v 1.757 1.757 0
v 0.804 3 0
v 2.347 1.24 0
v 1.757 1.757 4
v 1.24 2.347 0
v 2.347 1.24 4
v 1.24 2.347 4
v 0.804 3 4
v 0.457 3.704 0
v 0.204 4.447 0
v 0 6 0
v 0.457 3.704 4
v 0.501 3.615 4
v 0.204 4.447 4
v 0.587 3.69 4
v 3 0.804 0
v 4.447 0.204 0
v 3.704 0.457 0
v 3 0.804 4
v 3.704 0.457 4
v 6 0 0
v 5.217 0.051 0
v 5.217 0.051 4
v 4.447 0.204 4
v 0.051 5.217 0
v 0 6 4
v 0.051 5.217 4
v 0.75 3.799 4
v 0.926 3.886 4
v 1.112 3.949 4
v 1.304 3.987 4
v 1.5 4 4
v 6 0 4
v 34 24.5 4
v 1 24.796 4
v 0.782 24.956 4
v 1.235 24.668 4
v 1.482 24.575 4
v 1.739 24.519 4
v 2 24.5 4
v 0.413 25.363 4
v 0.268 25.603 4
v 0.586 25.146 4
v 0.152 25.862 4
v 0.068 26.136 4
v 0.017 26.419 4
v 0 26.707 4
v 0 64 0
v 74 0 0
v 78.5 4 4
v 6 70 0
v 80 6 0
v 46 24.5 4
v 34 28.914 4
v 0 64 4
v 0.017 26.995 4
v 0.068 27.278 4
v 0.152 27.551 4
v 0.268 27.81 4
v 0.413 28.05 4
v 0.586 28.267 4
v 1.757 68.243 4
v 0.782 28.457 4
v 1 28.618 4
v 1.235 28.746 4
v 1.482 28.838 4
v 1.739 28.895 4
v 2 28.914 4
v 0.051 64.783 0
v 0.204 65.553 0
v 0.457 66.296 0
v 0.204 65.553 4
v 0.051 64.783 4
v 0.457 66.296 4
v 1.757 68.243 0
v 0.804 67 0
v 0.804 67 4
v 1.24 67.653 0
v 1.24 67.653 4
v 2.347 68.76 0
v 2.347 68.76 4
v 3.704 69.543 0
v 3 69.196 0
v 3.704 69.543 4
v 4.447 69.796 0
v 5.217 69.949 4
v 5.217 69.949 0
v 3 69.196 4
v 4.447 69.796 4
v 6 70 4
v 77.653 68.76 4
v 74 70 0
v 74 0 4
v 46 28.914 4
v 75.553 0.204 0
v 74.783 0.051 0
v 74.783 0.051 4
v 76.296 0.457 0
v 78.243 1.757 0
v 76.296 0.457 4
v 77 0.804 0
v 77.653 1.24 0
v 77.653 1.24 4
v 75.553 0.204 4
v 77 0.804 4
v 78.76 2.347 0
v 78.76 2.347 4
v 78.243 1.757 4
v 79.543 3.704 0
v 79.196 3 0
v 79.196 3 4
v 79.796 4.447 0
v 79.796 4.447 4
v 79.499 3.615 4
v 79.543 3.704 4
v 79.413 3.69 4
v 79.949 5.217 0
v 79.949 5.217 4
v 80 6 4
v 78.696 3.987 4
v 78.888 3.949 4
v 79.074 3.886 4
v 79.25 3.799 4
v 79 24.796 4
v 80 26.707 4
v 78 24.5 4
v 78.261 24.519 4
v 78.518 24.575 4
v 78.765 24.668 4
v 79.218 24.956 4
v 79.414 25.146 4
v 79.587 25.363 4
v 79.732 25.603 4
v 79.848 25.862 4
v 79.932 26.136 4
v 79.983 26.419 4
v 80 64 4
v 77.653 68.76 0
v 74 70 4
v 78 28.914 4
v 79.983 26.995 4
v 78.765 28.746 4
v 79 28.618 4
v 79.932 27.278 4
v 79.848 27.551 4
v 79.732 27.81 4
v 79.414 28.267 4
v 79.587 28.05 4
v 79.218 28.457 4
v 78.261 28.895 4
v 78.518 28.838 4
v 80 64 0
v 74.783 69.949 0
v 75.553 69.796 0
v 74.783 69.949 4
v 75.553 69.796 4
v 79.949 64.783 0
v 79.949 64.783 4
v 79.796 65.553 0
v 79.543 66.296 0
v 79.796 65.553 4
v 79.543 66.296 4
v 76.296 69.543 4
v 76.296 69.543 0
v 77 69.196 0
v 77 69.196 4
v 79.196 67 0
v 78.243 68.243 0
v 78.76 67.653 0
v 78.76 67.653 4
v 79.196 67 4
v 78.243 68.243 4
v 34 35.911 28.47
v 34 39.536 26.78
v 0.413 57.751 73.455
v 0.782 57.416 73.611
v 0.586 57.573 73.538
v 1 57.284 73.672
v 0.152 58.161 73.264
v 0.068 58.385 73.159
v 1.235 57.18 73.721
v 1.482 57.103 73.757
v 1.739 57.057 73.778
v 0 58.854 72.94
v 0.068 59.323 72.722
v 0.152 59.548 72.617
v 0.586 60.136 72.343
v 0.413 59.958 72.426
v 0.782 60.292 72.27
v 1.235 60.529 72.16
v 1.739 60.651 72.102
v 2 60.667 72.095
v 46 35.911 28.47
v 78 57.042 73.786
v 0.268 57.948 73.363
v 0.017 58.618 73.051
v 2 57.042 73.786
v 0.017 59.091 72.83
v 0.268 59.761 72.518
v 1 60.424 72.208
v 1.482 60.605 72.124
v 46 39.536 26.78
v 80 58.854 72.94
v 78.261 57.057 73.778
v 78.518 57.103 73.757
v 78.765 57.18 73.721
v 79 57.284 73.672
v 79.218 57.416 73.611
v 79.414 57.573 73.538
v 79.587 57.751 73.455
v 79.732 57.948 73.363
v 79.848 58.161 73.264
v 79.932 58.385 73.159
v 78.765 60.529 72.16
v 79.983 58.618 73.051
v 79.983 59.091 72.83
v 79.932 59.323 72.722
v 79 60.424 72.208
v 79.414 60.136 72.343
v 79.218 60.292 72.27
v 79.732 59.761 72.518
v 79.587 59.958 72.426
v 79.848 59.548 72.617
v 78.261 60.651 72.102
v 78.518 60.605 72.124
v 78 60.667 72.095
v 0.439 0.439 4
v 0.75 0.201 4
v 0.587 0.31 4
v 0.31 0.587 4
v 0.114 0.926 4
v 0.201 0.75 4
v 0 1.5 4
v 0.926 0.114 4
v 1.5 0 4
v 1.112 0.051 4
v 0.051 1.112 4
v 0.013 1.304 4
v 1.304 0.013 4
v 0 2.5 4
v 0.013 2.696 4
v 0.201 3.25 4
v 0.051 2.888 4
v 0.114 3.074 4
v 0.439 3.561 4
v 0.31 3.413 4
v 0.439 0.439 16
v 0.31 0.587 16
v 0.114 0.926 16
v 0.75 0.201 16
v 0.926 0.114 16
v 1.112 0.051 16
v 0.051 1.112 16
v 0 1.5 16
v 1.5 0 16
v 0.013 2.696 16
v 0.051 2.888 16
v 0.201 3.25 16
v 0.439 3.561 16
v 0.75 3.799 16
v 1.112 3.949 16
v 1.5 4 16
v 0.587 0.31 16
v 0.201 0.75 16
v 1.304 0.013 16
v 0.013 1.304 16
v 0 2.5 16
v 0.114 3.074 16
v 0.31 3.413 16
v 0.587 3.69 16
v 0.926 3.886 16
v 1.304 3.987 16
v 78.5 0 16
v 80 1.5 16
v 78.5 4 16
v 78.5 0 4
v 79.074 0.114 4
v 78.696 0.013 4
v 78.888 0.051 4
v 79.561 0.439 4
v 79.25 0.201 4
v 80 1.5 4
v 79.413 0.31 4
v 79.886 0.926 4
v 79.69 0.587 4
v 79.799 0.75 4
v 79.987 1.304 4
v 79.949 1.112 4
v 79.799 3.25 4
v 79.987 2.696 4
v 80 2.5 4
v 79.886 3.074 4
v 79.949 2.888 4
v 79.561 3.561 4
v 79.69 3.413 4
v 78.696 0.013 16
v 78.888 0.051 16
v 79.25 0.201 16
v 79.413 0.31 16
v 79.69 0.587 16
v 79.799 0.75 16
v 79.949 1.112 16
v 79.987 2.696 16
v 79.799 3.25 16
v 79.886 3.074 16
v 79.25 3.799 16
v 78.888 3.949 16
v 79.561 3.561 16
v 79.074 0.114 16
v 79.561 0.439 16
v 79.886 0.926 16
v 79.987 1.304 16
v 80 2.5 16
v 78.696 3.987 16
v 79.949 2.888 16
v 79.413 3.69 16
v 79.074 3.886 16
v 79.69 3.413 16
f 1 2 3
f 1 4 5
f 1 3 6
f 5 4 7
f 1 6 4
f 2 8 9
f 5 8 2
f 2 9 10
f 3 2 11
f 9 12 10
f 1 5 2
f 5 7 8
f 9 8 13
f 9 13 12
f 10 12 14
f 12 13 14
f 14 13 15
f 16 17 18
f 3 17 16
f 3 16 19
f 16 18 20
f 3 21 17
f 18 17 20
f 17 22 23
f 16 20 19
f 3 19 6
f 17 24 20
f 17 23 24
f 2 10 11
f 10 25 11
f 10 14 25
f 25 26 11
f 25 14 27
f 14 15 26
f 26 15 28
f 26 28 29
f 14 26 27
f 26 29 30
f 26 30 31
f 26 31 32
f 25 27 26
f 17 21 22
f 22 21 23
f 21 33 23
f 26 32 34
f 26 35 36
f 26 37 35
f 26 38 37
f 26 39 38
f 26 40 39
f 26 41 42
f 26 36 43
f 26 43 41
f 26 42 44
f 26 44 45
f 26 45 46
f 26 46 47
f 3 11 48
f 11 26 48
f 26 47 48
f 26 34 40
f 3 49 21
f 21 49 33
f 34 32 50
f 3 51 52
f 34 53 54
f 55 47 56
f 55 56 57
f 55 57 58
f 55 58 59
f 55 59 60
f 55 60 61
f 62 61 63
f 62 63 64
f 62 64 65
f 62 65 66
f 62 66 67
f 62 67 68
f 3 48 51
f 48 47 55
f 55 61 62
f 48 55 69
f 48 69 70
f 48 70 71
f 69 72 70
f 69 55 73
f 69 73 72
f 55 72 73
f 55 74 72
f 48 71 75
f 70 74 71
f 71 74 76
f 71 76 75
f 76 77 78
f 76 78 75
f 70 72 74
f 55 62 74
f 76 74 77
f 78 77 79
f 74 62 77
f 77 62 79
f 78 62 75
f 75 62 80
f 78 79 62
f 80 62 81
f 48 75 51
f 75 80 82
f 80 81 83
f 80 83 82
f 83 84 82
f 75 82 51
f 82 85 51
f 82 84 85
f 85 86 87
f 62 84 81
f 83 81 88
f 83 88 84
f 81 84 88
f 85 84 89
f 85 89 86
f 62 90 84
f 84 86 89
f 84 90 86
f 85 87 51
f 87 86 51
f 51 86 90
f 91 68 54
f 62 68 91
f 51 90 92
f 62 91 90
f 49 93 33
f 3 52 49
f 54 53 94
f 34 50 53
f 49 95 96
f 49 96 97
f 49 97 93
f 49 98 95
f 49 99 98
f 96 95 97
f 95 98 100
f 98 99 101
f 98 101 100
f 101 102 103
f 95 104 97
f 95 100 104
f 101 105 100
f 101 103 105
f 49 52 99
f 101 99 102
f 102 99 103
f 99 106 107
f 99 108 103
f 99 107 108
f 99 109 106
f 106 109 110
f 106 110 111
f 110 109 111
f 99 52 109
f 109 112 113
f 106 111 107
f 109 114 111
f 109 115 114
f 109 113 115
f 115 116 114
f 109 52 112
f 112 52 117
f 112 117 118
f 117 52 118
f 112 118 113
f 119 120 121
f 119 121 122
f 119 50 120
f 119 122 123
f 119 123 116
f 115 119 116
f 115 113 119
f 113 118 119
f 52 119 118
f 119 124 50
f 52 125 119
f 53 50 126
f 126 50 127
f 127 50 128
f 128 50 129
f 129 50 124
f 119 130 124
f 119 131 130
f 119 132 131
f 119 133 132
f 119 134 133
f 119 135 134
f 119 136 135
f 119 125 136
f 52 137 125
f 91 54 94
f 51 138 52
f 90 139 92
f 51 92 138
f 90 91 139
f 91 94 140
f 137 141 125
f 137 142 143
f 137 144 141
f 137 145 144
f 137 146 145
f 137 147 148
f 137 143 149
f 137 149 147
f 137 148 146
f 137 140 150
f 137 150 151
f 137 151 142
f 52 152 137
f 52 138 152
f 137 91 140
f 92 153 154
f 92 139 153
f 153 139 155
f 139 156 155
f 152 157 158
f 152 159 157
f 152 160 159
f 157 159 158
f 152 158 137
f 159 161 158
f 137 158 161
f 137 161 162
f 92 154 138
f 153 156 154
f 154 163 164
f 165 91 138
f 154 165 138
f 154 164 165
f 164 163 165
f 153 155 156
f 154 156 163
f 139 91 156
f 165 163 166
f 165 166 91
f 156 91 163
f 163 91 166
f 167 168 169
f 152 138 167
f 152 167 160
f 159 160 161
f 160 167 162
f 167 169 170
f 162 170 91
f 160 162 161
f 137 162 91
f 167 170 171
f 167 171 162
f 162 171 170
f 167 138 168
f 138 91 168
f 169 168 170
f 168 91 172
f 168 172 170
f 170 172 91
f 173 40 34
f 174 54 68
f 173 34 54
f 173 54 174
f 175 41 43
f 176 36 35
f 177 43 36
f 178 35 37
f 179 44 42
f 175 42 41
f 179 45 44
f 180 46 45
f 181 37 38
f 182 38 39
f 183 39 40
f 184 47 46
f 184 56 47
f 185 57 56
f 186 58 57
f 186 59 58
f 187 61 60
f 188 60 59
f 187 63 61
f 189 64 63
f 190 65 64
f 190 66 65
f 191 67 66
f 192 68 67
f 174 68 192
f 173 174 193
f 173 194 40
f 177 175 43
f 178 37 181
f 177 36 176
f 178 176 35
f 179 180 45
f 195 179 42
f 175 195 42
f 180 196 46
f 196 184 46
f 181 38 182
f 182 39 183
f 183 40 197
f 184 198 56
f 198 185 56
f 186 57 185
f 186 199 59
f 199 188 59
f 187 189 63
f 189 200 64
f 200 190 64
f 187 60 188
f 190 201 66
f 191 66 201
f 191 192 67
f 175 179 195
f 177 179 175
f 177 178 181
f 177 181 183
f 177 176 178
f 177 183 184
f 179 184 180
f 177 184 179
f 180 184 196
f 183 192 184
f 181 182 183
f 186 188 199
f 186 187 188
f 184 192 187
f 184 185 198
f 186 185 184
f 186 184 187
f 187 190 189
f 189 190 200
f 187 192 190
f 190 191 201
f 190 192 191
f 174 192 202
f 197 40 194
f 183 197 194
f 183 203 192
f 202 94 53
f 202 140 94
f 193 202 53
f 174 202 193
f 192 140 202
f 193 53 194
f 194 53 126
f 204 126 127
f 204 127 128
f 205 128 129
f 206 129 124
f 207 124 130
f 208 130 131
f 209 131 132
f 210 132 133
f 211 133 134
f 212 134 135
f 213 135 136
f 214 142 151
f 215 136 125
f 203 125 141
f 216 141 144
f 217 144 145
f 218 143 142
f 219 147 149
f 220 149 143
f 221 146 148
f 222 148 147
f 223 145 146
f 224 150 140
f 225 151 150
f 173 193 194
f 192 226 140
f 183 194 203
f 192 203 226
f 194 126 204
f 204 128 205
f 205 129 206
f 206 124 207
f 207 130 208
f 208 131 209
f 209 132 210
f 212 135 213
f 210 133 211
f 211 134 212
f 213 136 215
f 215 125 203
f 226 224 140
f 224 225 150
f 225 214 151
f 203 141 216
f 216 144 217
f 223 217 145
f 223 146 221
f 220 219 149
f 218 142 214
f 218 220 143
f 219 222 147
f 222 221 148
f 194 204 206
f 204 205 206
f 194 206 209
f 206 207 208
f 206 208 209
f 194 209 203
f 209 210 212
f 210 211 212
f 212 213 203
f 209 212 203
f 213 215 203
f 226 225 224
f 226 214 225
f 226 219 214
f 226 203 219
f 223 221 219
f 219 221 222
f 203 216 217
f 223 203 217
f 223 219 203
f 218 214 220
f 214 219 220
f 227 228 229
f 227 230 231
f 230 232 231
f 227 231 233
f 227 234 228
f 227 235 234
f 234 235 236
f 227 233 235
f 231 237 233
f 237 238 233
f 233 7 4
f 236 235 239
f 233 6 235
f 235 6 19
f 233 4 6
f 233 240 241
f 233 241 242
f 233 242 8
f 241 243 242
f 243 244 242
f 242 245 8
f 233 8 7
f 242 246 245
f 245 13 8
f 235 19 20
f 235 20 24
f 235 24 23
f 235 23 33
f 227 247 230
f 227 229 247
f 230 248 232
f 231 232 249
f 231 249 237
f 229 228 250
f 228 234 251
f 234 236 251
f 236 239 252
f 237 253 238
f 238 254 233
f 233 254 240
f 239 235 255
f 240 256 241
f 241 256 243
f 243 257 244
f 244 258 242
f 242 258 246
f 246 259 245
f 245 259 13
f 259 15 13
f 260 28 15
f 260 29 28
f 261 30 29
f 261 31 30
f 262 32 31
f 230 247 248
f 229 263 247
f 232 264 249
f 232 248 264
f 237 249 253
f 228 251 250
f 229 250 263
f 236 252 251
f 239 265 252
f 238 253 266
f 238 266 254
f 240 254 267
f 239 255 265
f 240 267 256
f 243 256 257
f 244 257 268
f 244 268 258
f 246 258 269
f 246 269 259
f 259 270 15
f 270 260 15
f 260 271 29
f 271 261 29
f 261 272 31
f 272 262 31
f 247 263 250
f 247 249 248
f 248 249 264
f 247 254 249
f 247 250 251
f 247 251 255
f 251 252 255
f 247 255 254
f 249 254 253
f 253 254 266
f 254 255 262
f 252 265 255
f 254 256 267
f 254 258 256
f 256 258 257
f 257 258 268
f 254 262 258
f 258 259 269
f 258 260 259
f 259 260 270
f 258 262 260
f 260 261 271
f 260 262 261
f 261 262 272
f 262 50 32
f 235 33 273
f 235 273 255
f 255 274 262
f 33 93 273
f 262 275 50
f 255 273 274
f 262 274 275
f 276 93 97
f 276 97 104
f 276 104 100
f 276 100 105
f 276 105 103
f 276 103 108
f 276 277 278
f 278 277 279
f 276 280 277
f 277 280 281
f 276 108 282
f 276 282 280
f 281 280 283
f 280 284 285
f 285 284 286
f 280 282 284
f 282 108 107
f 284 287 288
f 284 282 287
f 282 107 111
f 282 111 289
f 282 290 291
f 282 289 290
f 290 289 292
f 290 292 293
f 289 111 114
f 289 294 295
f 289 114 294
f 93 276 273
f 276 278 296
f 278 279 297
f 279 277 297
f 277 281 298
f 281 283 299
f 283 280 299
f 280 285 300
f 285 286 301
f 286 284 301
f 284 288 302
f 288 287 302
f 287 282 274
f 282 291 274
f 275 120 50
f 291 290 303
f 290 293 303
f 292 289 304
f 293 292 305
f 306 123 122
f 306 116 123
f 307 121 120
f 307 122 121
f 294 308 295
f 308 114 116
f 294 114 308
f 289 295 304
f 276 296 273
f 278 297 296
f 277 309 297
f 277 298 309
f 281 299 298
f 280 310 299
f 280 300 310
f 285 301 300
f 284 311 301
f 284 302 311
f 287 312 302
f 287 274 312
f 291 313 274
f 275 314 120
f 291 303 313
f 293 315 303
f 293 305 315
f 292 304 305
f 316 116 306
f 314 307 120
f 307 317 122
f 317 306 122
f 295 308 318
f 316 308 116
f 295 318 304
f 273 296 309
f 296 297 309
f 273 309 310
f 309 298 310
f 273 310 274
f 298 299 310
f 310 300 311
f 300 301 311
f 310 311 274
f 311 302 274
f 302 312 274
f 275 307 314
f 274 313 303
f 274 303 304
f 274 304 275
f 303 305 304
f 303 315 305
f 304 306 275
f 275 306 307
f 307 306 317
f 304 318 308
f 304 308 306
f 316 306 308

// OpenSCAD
// file: lib/shapes.scad
// Small helpers shared by the models.

/** Box with rounded vertical edges. */
module rounded_box(size, radius = 2) {
    r = min(radius, size.x / 2, size.y / 2);
    hull()
        for (x = [r, size.x - r], y = [r, size.y - r])
            translate([x, y, 0]) cylinder(h = size.z, r = r);
}

/** Flat plate with rounded corners. */
module base_plate(size, radius = 4) {
    rounded_box(size, radius);
}

function inner(size, wall) = [for (i = [0 : 2]) size[i] - 2 * wall];
// main file
// Phone stand with a cable slot.
include <lib/shapes.scad>

/* [Size] */
width = 80;          // [60:5:120]
depth = 70;
angle = 65;          // [50:5:80]
thickness = 4;

/* [Cable] */
cable_slot = true;
slot_width = 12;

$fn = 48;

module stand() {
    color("SteelBlue") base_plate([width, depth, thickness], radius = 6);
    color("Orange") translate([0, depth * 0.35, thickness])
        rotate([angle - 90, 0, 0])
            back_rest();
    color("Orange") lip();
}

/** Back rest, tilted by `angle`. */
module back_rest() {
    difference() {
        rounded_box([width, thickness, depth * 1.1], radius = 2);
        if (cable_slot)
            translate([(width - slot_width) / 2, -1, -1])
                cube([slot_width, thickness + 2, depth * 0.4]);
    }
}

module lip(height = 12) {
    translate([0, 0, thickness])
        rounded_box([width, thickness, height], radius = 1.5);
}

stand();
echo(str("Footprint: ", width, " × ", depth, " mm"));
